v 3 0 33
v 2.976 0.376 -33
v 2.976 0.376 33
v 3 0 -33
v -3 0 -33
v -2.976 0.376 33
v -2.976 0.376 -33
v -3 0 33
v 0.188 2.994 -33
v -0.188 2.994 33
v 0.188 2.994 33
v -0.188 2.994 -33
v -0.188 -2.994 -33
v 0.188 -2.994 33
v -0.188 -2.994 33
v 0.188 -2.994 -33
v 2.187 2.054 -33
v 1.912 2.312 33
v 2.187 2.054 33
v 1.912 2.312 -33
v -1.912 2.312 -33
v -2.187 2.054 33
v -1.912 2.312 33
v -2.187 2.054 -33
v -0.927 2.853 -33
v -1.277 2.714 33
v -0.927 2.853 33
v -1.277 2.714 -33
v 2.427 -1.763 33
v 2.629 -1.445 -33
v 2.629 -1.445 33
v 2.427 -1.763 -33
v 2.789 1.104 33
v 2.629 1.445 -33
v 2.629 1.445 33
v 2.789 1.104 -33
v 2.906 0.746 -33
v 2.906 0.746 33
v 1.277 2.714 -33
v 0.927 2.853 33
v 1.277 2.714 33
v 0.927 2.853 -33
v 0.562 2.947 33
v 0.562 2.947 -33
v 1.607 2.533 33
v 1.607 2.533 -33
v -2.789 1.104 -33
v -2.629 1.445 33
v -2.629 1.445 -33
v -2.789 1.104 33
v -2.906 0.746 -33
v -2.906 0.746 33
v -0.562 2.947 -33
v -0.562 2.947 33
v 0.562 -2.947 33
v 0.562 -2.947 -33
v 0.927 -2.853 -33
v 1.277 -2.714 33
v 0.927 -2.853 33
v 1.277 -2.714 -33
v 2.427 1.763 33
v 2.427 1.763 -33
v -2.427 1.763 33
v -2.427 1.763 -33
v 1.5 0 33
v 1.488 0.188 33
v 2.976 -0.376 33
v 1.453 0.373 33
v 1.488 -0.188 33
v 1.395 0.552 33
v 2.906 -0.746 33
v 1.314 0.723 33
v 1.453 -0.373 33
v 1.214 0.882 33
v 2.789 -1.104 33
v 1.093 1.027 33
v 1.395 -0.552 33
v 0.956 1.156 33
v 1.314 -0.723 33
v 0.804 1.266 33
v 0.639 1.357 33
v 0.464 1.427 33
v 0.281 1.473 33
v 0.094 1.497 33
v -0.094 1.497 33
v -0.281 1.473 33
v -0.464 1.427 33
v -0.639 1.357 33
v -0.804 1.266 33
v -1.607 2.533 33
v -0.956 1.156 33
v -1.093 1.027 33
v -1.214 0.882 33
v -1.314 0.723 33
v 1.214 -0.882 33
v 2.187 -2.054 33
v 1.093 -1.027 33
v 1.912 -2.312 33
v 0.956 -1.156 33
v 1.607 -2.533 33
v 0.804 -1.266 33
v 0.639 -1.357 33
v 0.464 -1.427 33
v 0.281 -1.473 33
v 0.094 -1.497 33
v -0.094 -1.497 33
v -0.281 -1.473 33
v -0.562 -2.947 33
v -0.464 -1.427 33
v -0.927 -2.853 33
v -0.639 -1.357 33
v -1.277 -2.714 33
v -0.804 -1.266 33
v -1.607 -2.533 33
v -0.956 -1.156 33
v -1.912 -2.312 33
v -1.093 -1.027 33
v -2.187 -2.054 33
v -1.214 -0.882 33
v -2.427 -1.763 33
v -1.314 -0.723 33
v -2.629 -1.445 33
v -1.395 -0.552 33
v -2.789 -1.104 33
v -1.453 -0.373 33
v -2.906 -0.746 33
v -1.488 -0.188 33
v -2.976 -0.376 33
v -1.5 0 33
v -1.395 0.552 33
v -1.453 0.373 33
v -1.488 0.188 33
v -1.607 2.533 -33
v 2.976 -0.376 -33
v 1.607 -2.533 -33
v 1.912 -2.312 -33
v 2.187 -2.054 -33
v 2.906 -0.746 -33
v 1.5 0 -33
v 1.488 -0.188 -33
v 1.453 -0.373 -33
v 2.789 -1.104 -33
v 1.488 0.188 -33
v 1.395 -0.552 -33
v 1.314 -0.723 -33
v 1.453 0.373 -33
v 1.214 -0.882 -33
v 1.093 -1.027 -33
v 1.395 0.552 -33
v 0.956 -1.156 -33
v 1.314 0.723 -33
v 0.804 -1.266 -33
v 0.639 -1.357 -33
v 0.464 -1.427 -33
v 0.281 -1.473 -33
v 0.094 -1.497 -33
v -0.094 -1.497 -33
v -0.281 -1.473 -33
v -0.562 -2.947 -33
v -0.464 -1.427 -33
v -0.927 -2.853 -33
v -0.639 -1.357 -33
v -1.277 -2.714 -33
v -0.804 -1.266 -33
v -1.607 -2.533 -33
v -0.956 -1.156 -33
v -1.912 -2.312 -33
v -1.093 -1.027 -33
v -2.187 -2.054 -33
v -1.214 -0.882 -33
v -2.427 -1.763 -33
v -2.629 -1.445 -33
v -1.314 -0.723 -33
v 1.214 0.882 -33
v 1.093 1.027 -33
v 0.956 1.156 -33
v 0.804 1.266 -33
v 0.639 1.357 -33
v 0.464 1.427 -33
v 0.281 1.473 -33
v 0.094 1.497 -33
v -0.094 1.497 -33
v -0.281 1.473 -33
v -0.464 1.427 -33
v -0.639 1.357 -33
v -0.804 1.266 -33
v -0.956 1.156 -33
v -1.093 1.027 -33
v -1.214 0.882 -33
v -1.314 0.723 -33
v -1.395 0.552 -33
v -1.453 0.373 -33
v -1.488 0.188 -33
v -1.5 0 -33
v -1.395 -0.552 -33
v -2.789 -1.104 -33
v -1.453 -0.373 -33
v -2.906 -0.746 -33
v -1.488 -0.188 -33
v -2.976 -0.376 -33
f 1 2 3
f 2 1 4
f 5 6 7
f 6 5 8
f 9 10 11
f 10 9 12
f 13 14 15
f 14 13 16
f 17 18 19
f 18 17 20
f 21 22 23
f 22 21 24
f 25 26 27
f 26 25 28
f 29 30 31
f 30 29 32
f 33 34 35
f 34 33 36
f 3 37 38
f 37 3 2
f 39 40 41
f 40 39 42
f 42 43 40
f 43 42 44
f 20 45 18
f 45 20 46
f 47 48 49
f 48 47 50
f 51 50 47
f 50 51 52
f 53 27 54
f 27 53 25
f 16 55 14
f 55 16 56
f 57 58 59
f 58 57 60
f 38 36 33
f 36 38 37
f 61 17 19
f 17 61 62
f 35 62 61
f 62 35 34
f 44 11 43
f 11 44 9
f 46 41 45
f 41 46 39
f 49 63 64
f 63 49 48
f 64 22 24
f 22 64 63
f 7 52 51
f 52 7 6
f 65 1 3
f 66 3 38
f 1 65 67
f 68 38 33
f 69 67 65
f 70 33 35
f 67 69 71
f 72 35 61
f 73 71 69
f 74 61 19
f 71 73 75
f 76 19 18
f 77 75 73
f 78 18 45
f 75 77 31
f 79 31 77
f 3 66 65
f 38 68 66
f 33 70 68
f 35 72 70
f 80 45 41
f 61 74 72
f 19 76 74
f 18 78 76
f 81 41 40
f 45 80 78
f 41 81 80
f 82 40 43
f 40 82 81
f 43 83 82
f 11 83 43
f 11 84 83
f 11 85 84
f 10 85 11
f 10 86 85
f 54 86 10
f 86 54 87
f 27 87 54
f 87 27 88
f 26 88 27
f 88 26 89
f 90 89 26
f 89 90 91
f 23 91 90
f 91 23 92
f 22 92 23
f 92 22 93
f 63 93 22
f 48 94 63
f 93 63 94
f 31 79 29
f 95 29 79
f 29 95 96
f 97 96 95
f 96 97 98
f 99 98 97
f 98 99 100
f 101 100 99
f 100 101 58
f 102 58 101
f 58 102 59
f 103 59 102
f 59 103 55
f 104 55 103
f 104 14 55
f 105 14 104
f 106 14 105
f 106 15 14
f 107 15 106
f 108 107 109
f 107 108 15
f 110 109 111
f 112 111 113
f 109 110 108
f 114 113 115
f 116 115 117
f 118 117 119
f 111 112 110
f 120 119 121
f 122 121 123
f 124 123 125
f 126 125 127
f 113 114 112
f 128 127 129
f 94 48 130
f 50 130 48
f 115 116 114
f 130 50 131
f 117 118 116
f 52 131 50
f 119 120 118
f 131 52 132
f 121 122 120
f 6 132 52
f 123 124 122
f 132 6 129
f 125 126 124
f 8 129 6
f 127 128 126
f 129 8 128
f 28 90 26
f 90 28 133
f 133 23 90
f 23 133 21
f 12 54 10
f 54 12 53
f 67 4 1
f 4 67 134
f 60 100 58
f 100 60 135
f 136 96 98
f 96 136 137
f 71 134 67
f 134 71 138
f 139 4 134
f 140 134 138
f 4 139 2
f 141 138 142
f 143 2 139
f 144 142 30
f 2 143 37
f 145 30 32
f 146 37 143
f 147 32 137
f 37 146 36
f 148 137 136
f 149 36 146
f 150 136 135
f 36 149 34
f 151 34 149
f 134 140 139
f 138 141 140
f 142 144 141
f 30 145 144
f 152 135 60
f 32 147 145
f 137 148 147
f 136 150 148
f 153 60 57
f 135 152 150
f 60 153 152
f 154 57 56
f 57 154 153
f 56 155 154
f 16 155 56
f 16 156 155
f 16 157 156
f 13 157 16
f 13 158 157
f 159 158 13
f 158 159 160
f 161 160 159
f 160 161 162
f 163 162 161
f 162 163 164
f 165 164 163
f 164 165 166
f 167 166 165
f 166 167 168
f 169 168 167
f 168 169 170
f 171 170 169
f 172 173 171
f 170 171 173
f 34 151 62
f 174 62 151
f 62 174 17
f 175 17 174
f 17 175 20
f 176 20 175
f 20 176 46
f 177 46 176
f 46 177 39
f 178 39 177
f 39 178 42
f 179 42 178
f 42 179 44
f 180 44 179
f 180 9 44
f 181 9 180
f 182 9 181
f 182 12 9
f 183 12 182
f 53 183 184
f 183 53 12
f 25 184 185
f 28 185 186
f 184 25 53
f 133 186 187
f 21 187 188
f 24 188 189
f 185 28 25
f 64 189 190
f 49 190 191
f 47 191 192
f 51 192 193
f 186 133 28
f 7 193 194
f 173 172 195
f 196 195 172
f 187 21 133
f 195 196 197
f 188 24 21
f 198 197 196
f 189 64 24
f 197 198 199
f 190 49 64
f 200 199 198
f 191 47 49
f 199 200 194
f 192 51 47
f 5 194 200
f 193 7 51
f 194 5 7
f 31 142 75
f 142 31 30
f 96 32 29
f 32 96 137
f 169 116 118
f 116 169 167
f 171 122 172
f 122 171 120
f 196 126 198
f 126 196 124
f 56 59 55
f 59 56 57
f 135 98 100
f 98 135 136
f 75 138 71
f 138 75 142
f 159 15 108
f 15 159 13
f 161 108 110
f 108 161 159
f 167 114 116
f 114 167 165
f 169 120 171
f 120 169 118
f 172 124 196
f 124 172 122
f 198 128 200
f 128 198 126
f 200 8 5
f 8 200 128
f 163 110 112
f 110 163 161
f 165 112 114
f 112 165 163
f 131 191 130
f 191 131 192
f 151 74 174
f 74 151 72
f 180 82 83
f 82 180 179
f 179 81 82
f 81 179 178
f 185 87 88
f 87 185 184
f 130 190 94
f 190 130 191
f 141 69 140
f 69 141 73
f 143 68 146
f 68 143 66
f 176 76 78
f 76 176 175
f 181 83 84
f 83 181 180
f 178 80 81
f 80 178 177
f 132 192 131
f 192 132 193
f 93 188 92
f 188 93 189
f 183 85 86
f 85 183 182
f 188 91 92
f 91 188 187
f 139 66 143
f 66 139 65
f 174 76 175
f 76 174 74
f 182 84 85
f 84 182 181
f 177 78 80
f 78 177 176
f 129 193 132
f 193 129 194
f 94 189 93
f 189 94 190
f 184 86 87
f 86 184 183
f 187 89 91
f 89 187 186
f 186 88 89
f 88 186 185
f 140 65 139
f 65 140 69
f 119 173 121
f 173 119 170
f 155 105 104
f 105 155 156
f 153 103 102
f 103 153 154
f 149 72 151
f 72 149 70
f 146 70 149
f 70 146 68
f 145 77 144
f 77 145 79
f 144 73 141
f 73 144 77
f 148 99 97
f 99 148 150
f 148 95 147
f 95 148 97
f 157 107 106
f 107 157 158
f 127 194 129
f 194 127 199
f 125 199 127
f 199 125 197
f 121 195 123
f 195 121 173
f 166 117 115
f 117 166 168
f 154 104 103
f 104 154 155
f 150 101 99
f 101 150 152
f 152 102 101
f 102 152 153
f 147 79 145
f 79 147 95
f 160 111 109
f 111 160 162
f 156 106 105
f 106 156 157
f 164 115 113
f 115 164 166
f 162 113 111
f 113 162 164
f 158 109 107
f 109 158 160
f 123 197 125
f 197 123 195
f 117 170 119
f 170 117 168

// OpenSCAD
$fn = 50;


difference() {
	union() {
		translate(v = [0, 0, -33.0000000000]) {
			cylinder(h = 66, r = 3.0000000000);
		}
	}
	union() {
		translate(v = [0, 0, -100.0000000000]) {
			cylinder(h = 200, r = 1.5000000000);
		}
	}
}
